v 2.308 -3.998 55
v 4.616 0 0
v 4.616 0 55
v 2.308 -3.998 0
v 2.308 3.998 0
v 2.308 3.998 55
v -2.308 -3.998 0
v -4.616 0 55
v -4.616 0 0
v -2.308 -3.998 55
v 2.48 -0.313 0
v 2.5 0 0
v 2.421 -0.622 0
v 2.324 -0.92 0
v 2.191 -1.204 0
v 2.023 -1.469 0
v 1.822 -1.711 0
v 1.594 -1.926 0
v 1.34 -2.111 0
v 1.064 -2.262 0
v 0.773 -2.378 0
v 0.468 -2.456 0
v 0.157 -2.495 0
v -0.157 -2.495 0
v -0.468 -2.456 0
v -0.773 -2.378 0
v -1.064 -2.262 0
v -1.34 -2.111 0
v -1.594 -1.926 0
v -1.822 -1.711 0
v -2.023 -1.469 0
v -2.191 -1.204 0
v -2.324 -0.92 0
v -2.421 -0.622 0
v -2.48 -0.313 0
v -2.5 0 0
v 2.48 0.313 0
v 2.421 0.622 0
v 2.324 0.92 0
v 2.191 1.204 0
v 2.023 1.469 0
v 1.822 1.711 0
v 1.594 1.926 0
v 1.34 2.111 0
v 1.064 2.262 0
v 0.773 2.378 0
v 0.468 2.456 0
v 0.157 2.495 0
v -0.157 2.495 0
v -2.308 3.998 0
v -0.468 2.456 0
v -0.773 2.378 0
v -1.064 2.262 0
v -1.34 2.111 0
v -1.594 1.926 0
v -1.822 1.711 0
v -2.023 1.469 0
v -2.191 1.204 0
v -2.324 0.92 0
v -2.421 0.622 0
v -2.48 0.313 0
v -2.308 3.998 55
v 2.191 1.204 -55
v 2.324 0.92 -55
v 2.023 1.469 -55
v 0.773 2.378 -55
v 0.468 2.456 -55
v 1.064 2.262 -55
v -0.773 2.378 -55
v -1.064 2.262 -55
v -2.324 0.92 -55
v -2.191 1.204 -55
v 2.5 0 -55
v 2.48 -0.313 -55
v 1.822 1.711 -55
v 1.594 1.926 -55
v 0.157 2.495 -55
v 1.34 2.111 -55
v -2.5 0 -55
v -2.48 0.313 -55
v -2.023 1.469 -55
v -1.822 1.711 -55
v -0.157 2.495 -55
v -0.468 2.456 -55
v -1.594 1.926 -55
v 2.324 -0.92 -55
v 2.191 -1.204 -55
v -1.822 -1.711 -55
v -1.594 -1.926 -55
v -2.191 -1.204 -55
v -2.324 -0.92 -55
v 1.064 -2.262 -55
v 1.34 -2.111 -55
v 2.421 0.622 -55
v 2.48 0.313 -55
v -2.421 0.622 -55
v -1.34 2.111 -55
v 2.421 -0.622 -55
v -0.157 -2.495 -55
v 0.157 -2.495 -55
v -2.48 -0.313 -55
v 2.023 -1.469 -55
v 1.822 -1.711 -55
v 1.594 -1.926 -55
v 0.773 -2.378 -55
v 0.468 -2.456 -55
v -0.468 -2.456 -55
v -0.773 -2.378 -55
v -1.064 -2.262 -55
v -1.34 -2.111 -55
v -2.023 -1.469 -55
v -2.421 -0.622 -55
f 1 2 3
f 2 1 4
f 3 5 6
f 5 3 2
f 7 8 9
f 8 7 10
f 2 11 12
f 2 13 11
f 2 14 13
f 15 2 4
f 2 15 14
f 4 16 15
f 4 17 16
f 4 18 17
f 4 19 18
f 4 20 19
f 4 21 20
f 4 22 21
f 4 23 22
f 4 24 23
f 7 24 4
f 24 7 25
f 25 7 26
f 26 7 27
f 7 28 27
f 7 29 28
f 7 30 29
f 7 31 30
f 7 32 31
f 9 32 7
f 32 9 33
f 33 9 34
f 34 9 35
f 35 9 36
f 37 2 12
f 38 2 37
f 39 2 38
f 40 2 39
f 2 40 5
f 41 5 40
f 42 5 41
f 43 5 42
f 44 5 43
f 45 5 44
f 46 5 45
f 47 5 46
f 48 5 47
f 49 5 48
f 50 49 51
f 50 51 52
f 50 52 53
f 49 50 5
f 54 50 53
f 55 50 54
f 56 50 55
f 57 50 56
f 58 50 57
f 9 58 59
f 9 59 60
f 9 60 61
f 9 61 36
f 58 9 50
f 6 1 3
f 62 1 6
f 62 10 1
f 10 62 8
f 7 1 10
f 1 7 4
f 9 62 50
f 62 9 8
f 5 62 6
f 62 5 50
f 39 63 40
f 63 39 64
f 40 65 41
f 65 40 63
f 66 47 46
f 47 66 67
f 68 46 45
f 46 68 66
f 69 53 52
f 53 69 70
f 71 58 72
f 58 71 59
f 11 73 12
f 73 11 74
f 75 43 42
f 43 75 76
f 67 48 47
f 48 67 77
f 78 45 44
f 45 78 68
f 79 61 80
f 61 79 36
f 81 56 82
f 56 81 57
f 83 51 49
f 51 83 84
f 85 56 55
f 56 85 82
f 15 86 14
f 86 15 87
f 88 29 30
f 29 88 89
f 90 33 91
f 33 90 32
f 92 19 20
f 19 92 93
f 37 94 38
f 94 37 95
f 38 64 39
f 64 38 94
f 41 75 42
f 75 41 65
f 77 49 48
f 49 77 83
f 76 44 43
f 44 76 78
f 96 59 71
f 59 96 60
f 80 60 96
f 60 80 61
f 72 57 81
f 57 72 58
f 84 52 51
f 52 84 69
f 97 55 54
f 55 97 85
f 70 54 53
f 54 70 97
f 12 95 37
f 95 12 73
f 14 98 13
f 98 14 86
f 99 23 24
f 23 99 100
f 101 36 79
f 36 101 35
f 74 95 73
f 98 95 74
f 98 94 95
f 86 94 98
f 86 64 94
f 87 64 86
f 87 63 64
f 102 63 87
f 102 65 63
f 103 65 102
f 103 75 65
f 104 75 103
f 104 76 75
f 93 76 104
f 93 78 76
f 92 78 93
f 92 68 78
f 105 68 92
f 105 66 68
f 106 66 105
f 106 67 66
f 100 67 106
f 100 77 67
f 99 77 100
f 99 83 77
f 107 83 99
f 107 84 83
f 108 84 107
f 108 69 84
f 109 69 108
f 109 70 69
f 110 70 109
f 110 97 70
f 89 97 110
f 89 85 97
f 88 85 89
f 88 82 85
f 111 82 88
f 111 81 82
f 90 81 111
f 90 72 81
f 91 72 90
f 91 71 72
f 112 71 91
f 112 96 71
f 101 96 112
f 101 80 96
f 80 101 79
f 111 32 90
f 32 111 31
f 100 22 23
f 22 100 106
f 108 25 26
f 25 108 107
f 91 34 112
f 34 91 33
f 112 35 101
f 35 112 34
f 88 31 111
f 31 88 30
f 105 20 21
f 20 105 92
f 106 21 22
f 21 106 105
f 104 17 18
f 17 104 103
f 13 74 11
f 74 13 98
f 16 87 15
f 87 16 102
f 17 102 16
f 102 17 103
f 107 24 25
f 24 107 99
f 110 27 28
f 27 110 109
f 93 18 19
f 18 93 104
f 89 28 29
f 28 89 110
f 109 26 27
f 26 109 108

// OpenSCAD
$fn = 50;


difference() {
	union() {
		linear_extrude(height = 55) {
			polygon(points = [[4.6160000000, 0.0000000000], [2.3080000000, 3.9975732639], [-2.3080000000, 3.9975732639], [-4.6160000000, 0.0000000000], [-2.3080000000, -3.9975732639], [2.3080000000, -3.9975732639]]);
		}
		translate(v = [0, 0, -55]) {
			cylinder(h = 55, r = 2.5000000000);
		}
	}
	union();
}
